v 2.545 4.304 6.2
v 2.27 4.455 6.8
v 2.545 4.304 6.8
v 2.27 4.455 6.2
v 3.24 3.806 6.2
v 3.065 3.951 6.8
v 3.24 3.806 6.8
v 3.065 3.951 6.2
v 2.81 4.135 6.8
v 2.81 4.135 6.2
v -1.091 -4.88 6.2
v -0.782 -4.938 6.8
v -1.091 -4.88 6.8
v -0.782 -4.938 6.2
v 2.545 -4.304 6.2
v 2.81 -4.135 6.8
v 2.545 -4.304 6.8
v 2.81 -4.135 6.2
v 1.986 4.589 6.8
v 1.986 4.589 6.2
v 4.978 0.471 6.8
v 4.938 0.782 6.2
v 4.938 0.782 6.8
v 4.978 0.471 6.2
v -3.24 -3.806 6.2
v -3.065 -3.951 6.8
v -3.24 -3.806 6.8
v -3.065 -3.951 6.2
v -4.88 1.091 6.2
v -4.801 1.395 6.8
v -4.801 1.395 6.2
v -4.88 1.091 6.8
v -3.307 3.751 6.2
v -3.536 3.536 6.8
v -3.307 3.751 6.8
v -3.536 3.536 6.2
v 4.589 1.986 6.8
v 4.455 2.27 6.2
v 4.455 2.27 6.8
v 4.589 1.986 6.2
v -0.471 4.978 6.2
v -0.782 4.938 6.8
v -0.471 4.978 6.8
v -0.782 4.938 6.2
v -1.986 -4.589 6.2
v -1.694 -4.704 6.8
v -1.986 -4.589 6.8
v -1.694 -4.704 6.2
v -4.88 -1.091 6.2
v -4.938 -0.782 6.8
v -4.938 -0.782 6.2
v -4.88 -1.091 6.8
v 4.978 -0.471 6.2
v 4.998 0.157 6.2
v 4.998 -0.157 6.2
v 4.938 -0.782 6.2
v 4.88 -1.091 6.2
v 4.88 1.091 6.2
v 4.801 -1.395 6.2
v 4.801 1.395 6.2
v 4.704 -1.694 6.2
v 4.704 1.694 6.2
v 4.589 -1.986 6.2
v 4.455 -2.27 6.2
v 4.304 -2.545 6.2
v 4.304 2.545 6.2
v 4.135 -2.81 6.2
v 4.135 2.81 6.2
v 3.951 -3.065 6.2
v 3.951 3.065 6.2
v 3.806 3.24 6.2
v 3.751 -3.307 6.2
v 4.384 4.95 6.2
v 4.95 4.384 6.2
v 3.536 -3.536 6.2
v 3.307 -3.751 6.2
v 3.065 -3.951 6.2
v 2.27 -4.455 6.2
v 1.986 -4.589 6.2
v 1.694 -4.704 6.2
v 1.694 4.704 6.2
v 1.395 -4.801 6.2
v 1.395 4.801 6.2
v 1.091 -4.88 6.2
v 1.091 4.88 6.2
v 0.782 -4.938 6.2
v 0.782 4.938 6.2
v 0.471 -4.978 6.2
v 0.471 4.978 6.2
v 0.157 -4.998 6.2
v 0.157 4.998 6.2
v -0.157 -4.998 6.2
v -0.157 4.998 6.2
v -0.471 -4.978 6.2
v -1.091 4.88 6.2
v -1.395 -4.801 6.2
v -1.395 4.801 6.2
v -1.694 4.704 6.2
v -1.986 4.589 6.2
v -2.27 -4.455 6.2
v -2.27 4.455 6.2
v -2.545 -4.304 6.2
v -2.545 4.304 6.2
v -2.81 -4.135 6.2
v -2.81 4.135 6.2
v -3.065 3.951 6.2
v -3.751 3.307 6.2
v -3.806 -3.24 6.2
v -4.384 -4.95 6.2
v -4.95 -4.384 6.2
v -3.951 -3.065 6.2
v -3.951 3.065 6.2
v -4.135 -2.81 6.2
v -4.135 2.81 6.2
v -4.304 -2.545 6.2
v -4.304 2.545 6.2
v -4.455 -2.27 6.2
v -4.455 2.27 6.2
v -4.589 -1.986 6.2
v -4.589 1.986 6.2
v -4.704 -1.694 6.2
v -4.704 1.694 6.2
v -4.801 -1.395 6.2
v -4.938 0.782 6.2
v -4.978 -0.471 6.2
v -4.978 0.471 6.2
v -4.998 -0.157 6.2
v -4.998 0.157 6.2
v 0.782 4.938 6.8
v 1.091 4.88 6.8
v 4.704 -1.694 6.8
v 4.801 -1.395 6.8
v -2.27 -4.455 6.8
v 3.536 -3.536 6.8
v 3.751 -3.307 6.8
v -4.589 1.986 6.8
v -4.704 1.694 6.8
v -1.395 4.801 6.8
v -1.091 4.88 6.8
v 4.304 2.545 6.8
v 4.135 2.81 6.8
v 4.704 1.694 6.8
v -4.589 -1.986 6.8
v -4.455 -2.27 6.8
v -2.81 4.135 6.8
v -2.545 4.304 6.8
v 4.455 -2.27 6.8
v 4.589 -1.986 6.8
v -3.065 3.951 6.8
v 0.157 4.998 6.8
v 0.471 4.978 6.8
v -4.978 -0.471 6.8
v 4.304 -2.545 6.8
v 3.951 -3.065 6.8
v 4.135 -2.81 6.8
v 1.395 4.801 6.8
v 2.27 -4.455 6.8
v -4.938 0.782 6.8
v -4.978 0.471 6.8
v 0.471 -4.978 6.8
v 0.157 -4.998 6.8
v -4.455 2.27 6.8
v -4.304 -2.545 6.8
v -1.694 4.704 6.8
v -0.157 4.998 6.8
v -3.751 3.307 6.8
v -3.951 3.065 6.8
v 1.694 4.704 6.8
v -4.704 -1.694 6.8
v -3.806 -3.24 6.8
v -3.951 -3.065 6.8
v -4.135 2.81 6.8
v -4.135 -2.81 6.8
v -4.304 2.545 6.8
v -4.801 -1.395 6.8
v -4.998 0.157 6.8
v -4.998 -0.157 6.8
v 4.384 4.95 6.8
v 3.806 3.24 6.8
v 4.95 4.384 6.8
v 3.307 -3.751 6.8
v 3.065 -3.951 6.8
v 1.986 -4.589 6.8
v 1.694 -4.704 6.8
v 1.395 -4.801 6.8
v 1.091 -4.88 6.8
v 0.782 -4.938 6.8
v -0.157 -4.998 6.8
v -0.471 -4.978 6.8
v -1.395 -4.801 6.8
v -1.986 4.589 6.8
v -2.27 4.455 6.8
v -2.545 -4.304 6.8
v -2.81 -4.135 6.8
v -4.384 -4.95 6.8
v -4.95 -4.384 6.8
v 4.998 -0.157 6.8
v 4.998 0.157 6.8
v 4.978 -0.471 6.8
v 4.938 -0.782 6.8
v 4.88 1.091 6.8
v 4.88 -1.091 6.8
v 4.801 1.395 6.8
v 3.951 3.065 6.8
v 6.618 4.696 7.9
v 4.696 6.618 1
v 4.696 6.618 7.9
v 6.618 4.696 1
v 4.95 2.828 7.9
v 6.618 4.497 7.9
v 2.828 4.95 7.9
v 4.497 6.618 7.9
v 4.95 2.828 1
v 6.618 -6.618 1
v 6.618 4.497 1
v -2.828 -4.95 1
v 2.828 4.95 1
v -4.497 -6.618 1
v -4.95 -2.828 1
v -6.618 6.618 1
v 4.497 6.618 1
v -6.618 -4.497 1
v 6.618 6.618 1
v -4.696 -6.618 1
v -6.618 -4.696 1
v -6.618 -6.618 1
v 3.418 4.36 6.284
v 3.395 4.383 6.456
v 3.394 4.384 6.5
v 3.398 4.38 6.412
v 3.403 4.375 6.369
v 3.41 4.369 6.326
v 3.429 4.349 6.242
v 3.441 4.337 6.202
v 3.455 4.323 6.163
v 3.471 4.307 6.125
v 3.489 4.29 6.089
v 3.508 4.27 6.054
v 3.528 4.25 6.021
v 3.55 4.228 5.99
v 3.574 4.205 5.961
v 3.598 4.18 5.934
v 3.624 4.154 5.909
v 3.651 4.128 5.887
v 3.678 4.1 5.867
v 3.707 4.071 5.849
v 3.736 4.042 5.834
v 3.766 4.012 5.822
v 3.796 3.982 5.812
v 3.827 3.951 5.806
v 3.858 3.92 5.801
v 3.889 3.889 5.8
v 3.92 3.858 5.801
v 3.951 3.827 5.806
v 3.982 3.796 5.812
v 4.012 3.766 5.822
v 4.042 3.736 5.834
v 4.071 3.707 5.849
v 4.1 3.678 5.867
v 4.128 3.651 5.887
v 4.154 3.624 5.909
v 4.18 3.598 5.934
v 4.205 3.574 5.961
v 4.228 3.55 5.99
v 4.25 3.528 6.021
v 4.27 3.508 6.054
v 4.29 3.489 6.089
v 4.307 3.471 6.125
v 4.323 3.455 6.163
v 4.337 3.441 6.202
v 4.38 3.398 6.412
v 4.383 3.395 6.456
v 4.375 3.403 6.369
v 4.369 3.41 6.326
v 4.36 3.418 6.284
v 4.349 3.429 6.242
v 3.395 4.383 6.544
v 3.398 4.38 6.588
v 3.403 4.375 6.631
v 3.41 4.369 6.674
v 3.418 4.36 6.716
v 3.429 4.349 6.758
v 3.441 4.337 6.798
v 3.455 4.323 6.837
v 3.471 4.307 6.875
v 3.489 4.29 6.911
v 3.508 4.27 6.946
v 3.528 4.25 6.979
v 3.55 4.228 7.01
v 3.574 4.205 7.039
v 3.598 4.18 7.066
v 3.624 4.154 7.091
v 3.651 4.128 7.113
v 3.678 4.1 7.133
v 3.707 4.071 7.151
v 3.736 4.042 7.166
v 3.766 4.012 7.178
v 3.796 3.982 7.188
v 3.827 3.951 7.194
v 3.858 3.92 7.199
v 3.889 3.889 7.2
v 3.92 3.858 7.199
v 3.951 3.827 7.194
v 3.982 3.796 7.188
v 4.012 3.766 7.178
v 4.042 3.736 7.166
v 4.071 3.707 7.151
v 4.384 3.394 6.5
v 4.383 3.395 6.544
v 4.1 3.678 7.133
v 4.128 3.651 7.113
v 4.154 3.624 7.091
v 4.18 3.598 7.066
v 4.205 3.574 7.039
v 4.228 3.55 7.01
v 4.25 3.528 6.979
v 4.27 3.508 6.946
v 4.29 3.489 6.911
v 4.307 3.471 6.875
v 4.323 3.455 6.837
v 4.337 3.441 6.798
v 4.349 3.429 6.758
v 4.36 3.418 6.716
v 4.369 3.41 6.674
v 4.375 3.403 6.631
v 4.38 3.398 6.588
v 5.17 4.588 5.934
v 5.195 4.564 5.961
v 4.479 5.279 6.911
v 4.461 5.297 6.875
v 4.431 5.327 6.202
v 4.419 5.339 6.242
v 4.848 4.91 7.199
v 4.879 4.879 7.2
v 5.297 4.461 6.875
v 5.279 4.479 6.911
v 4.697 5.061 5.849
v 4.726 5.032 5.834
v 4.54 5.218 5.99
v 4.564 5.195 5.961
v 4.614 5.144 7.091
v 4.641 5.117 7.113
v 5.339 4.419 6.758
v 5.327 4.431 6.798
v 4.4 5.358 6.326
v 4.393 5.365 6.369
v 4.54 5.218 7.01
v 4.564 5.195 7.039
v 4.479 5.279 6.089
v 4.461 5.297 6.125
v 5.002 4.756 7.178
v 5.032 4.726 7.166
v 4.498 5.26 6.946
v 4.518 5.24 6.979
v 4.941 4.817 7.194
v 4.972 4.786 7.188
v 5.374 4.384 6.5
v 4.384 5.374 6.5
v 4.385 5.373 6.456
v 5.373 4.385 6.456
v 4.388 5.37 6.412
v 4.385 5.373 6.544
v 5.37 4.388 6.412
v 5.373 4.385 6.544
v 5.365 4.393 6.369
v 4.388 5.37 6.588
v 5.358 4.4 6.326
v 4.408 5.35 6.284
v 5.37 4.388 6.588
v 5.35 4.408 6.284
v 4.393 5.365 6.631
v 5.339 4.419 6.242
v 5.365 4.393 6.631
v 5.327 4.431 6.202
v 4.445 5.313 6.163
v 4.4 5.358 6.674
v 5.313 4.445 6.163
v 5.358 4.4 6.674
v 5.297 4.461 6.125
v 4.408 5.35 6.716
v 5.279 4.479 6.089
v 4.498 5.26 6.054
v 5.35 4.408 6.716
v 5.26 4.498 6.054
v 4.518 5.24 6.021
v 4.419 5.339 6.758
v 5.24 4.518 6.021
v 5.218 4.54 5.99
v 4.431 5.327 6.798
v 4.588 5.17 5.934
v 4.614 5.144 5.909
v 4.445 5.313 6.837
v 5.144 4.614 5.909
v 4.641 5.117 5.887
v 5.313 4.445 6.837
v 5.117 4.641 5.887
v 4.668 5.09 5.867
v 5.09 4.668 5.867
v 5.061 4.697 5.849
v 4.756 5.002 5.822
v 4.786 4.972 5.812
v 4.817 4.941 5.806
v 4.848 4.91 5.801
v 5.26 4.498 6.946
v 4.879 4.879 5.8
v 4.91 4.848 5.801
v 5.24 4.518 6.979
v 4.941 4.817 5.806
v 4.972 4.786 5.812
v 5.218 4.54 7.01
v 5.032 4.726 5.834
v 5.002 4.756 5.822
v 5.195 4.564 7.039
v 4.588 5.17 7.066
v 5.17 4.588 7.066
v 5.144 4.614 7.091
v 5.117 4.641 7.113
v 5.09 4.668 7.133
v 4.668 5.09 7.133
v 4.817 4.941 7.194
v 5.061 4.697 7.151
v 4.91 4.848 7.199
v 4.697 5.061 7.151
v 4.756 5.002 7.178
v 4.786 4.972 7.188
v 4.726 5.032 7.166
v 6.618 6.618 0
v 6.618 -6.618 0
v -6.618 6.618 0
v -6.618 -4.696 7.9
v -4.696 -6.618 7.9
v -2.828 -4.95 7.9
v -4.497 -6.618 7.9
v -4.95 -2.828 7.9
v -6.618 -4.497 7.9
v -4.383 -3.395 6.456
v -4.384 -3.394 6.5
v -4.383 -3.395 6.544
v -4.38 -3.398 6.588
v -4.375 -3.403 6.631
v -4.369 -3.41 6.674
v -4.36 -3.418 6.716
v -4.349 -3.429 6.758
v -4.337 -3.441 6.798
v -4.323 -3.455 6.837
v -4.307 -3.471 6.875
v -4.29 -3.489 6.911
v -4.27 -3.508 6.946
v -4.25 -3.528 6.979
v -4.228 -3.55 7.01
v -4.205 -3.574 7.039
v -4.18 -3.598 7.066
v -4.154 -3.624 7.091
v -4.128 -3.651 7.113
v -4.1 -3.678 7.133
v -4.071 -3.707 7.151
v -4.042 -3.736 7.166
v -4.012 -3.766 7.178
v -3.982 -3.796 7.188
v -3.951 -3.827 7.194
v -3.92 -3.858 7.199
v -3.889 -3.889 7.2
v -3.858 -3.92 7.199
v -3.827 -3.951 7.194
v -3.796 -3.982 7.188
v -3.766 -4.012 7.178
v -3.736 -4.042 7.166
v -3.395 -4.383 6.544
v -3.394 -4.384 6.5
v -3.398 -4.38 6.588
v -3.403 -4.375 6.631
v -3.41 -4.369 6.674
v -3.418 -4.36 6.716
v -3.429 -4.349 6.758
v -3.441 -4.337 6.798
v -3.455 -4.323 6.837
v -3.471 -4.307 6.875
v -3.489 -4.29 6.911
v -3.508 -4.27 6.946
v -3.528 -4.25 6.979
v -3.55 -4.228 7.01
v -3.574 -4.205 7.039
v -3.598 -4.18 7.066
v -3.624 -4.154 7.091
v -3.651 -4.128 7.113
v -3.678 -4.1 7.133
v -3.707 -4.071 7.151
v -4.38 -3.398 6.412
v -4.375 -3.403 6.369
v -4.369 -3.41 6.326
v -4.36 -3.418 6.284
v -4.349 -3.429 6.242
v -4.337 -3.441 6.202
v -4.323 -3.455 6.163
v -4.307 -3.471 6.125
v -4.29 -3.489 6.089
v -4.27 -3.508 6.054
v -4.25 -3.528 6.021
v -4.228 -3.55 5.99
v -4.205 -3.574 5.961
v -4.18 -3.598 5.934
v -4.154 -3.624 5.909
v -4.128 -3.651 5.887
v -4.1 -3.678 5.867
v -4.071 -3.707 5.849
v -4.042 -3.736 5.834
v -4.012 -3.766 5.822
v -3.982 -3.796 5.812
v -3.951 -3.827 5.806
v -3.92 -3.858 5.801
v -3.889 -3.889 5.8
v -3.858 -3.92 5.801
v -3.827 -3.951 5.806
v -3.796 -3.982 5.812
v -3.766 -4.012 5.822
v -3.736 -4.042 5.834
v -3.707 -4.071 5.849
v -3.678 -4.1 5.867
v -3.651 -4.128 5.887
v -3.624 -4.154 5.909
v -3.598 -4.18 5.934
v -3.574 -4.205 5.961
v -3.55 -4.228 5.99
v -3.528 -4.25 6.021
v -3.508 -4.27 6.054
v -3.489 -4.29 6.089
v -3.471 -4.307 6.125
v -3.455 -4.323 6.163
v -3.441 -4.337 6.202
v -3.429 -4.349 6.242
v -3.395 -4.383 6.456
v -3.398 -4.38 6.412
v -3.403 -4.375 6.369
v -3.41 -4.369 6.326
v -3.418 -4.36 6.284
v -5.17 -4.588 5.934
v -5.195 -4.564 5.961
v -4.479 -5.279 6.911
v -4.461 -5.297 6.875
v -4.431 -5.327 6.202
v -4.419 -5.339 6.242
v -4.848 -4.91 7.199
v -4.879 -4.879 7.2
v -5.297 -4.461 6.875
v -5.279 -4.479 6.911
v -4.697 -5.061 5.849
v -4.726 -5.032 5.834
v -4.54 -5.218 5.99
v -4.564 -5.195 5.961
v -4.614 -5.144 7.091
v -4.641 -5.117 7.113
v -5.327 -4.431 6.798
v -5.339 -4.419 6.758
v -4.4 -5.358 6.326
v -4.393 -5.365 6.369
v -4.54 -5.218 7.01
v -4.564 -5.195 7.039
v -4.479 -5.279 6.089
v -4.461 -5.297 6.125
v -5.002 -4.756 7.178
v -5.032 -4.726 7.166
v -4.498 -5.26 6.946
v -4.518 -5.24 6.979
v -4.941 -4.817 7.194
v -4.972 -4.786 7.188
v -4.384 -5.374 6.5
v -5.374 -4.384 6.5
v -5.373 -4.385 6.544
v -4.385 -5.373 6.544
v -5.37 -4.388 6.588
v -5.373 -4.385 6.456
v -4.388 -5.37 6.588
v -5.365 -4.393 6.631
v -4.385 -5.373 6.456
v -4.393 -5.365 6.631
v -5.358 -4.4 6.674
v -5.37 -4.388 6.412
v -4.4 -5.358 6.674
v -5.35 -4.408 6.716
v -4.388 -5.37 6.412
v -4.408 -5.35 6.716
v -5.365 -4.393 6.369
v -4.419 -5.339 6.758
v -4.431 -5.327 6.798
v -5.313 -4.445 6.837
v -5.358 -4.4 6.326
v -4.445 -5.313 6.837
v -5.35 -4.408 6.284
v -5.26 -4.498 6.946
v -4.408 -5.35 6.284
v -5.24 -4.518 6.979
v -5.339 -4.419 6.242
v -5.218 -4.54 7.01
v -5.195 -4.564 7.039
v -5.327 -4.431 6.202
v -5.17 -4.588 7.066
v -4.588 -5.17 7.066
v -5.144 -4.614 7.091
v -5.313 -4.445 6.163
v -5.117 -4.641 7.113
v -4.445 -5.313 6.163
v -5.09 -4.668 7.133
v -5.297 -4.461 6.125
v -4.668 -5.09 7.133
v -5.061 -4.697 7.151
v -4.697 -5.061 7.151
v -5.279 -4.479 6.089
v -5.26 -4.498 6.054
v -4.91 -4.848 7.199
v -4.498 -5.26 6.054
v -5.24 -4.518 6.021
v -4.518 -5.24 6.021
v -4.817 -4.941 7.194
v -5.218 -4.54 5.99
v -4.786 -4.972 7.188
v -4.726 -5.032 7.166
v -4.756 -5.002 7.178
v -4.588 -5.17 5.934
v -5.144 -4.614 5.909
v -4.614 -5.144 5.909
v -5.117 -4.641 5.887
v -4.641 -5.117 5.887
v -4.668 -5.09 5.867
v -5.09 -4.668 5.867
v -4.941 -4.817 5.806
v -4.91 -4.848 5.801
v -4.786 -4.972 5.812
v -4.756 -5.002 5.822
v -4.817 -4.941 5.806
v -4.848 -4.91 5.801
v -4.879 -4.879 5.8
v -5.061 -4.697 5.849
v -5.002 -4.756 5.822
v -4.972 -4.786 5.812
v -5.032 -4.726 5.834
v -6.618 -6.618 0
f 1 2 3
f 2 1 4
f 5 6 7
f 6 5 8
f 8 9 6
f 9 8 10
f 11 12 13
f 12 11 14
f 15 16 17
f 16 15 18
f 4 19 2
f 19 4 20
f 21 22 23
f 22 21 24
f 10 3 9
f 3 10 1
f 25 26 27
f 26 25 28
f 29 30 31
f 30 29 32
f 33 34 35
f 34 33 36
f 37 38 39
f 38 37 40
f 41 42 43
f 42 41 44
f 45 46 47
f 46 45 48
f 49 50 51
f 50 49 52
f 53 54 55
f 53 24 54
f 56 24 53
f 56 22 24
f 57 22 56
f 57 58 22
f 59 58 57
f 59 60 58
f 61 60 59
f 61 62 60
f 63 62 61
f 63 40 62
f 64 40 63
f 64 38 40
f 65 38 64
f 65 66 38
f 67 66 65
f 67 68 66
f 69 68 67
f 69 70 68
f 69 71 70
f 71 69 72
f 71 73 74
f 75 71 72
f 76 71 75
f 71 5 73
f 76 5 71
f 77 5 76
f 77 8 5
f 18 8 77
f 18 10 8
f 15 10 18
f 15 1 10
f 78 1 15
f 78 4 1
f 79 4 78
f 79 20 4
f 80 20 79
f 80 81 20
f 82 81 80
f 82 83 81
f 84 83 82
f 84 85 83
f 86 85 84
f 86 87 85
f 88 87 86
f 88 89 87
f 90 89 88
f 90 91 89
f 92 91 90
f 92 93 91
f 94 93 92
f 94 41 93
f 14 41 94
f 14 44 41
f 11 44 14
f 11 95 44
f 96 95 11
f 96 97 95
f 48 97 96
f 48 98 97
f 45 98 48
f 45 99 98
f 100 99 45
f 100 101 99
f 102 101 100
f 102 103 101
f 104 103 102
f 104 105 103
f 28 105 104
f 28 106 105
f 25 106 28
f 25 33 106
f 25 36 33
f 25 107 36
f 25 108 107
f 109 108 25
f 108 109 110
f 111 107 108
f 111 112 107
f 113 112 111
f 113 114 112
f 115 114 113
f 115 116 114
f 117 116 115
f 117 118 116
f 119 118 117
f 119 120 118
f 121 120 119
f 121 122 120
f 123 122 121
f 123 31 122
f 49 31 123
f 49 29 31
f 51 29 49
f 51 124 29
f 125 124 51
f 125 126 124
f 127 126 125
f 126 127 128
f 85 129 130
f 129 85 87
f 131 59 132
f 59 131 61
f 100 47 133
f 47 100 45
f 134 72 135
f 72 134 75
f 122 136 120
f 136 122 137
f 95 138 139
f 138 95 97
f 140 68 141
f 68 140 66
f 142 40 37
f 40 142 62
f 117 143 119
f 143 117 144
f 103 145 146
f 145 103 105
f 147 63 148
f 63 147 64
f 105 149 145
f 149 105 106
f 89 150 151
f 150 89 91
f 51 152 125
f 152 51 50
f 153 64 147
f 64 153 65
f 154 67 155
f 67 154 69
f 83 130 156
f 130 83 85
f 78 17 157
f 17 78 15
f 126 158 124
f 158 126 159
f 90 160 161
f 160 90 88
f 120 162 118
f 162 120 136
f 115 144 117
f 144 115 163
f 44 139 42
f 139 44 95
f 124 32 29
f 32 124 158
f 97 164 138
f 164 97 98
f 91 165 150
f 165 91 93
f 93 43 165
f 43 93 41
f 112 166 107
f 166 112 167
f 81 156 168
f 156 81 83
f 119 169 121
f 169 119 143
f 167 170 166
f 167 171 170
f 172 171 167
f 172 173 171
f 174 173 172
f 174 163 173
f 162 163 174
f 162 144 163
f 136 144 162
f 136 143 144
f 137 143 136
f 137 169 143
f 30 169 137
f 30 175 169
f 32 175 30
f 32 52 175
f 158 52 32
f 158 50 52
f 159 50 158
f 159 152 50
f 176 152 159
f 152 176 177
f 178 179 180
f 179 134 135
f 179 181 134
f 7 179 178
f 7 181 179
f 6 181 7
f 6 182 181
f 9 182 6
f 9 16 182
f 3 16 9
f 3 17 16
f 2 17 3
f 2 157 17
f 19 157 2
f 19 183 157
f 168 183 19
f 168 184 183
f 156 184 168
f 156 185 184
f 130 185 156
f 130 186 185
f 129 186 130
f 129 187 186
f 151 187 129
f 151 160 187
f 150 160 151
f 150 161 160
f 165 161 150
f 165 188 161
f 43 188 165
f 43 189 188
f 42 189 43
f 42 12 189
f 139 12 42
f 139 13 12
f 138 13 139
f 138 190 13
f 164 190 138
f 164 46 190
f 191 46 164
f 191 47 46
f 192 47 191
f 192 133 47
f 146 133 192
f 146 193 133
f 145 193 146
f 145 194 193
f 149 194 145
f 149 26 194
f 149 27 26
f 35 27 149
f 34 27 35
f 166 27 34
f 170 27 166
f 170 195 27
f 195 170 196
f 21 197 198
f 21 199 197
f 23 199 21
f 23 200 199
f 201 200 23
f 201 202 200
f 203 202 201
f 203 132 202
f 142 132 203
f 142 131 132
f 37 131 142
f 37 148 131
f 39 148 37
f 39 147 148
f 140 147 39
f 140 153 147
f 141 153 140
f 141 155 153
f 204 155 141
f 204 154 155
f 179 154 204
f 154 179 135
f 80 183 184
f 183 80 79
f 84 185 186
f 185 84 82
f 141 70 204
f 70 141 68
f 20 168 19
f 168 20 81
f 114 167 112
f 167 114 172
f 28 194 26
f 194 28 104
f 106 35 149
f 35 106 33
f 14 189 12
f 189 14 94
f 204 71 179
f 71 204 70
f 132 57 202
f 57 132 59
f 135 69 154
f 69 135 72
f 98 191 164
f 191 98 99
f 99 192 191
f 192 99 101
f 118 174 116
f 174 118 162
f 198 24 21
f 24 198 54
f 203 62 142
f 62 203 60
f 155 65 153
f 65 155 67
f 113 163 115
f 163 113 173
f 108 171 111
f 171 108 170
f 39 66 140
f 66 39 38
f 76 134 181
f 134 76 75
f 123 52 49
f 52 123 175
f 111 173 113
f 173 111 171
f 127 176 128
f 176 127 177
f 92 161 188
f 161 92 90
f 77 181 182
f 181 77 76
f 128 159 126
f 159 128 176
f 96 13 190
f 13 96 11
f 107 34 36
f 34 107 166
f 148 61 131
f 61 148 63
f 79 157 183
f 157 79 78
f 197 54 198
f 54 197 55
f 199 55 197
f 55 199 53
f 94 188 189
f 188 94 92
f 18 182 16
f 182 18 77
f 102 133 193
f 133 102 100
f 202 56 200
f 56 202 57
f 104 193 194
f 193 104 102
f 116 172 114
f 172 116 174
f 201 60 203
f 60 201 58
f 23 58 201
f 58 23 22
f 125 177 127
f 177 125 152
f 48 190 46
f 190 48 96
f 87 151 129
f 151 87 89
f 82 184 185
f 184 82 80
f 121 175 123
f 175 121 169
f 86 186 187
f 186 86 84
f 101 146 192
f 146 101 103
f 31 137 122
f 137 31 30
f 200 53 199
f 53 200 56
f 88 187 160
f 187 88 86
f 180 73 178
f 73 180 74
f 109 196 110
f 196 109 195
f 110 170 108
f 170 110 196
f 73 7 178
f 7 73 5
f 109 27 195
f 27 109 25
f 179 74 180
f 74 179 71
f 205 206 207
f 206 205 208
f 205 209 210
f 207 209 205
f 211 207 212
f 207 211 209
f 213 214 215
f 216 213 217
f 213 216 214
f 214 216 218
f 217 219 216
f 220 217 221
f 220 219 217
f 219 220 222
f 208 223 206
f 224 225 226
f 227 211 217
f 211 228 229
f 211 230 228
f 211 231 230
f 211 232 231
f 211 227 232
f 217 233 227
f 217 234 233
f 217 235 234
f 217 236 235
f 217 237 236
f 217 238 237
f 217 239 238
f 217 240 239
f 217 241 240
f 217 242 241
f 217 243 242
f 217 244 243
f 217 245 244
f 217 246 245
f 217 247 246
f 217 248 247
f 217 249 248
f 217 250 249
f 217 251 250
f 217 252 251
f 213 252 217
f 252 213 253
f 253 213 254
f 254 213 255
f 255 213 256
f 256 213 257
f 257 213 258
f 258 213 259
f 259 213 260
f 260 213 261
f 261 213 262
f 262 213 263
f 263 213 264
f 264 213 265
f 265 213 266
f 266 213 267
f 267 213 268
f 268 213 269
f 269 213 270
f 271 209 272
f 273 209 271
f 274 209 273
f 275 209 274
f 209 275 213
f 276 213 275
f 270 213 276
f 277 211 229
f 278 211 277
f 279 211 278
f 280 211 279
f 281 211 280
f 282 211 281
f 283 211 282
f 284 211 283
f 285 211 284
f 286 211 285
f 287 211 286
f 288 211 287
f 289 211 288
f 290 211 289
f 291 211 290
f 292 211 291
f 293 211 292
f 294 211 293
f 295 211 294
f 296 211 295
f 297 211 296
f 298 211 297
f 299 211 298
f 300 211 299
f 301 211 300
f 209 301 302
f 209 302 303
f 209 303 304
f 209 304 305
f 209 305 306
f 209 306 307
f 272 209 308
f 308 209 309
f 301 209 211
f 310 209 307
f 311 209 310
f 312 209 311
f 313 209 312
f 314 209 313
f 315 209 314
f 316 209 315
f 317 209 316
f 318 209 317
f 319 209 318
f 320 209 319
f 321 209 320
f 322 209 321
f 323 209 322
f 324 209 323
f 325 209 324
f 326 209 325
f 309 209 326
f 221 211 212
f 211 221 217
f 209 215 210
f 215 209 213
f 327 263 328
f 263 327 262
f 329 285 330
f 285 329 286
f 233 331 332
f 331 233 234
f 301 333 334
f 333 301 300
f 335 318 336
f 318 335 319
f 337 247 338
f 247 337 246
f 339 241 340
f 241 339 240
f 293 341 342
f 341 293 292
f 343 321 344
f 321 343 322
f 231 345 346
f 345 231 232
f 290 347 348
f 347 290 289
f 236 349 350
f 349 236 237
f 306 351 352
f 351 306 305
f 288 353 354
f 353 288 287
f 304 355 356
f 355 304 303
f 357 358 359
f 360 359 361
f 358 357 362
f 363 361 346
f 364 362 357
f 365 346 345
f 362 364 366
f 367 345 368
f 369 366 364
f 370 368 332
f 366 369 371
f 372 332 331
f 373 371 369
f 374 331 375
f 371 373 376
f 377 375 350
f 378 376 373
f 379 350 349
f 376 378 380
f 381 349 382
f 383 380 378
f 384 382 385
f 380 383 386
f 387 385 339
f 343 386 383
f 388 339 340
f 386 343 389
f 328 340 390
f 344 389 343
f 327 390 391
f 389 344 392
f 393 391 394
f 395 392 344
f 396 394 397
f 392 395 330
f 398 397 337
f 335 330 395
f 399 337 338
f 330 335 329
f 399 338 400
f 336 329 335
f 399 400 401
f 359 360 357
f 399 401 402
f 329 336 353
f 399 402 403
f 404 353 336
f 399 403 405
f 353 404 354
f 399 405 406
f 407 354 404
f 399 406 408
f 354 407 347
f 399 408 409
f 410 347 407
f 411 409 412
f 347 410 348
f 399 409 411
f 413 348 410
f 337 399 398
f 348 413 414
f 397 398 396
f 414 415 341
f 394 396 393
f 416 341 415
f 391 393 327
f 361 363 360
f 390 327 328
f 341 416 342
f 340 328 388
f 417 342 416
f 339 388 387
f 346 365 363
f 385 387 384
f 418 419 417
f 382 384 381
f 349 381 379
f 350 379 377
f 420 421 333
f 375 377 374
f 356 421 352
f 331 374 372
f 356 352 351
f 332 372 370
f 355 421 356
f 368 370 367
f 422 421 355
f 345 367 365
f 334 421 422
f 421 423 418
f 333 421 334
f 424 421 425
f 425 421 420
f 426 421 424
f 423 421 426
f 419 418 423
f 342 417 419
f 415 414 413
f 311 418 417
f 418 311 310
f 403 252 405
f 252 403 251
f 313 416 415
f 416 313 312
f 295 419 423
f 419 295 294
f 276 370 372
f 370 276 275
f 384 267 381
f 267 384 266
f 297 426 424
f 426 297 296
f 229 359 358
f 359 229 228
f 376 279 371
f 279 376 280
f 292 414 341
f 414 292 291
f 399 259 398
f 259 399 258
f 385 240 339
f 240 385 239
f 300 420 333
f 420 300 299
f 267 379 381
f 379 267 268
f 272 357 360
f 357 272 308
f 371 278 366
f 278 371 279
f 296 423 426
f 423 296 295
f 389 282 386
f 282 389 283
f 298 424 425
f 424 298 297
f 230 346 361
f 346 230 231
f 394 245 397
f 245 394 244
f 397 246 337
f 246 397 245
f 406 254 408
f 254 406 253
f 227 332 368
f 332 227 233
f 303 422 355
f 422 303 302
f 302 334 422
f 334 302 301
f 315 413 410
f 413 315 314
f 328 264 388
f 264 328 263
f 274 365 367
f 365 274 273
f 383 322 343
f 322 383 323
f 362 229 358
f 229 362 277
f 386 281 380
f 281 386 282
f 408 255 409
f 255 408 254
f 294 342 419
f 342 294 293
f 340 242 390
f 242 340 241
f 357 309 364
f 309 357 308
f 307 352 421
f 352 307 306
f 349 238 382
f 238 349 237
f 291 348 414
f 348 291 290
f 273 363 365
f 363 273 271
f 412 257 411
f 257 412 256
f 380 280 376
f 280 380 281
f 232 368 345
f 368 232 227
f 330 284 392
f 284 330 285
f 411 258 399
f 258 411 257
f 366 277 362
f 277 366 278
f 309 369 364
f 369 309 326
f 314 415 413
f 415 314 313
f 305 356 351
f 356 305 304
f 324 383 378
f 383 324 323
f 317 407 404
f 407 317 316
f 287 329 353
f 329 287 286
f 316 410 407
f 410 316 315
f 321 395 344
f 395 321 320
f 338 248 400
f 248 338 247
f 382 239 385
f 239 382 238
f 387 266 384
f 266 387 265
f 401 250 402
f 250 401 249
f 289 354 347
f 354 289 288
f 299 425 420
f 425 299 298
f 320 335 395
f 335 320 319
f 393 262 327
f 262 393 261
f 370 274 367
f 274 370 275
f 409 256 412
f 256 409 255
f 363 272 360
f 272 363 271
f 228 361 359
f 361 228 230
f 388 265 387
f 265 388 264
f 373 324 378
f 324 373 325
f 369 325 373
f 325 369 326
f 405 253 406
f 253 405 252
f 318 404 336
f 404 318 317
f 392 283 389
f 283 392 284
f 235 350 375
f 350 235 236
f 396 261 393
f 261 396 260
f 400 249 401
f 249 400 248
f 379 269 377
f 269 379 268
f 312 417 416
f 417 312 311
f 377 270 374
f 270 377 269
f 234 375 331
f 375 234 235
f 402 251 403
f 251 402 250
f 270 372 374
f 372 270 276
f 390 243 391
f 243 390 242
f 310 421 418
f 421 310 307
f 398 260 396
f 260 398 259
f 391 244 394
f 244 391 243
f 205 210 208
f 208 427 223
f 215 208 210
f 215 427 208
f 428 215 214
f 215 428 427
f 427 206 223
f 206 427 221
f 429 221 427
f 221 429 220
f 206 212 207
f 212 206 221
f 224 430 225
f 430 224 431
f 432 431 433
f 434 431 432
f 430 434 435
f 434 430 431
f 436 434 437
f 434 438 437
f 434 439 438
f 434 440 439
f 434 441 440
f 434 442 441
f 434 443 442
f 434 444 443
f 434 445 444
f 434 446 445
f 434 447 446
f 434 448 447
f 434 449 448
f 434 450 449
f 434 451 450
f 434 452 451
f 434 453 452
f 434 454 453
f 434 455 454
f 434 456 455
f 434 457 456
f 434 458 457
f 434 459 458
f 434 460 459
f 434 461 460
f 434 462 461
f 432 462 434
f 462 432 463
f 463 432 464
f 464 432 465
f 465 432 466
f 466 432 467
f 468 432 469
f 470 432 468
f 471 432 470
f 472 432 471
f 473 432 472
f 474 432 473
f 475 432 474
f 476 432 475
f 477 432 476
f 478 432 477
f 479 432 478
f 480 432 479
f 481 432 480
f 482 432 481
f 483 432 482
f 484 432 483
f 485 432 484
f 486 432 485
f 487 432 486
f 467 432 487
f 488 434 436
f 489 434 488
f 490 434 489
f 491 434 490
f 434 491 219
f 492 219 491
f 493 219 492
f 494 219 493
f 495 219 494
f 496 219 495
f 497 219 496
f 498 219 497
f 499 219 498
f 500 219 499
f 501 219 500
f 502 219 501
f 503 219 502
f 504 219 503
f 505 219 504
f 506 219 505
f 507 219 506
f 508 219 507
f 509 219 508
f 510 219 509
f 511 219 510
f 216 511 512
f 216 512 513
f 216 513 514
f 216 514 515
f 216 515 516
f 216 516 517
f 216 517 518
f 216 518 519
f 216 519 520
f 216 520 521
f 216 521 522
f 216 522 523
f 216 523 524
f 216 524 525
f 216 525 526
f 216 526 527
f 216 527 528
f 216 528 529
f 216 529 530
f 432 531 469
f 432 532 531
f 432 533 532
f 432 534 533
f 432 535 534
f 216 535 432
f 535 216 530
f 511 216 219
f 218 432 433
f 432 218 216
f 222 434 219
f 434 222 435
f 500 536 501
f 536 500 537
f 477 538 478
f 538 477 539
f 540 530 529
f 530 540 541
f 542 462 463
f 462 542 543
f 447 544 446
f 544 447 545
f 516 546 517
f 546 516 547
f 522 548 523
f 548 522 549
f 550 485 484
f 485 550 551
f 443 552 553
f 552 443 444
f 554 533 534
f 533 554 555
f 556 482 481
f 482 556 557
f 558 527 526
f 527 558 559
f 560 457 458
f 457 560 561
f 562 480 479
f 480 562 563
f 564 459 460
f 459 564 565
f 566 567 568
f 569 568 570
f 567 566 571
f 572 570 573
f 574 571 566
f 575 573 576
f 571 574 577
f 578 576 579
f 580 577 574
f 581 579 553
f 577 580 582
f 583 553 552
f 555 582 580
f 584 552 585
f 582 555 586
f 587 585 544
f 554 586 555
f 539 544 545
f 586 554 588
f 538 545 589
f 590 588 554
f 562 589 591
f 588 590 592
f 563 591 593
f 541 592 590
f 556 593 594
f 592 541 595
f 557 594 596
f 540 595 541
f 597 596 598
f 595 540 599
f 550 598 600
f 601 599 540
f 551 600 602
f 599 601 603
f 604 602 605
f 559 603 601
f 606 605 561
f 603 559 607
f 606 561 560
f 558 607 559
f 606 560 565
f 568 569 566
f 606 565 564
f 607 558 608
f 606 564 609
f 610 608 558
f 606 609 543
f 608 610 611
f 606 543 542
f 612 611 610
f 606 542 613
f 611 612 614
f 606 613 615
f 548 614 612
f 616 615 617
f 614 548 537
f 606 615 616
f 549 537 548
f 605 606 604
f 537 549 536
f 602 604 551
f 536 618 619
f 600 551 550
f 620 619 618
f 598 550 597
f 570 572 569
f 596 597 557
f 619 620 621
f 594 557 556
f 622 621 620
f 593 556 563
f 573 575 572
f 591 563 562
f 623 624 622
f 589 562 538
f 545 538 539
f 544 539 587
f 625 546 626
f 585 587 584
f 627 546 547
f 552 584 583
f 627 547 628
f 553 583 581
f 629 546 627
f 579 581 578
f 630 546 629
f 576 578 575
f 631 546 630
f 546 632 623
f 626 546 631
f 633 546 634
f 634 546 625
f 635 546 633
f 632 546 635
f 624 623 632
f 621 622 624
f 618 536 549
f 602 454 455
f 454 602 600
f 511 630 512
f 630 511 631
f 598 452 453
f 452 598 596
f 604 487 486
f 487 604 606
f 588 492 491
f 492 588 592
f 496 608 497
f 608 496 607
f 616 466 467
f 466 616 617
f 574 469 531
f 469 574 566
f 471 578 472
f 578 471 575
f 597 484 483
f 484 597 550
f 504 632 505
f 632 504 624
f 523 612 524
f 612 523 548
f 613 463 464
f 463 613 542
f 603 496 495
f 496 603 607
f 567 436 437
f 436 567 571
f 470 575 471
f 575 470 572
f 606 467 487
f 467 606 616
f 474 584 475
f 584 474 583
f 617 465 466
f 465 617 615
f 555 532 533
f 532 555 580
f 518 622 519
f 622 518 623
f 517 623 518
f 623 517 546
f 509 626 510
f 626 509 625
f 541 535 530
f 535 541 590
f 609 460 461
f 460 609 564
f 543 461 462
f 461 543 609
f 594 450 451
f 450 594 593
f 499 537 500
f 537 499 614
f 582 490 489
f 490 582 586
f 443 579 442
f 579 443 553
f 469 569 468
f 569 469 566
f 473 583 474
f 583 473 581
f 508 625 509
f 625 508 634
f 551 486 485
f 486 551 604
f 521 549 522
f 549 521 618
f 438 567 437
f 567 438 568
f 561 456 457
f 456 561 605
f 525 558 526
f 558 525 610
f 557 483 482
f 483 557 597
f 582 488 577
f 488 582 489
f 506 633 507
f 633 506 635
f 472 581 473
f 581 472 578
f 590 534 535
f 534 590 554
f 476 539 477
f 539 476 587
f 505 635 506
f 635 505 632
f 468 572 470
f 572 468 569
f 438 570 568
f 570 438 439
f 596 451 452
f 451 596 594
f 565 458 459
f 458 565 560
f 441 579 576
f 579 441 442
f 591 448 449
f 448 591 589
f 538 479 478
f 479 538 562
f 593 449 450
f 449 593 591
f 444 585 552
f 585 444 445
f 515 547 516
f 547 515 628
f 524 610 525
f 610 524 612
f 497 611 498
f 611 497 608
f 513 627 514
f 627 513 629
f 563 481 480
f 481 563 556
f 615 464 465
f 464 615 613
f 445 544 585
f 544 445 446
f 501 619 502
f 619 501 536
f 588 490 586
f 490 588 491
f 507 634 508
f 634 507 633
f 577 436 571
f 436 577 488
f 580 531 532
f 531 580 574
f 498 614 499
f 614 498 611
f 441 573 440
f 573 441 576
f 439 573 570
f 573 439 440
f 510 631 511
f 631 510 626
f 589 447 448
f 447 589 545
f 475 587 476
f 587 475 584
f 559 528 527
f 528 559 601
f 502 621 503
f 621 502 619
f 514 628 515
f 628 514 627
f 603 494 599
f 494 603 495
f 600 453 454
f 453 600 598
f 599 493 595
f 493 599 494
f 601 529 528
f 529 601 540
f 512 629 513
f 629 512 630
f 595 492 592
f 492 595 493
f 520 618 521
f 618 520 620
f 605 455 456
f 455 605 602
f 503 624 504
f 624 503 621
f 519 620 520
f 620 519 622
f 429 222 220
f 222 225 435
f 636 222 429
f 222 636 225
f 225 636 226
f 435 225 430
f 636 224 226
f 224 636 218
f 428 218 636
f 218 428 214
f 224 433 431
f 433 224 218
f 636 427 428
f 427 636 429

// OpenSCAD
inf = 100;

dot_radius = 5;
dot_thiccness = .6;

pin_width = .8;
pin_extrusion = 1.6;

base_height = 1;
base_pad = .5;
dot_to_arm_pad = .5;
hole_radius_pad = .3;
hole_depth_pad = .3;

arm_width = 2.5;
arm_side_pad = 1;
arm_top_pad = 1;

rotate([0, 0, 45]) translate([0, 0, base_height+dot_radius+base_pad]) rotate([360*$t, 0, 0])
//translate([20, 0, .5/2])
union() {
    translate([0, 0, -(dot_thiccness)/2]) cylinder(dot_thiccness, r=dot_radius, $fn=100);
    cube([(dot_radius*2)+(pin_extrusion*2), pin_width, dot_thiccness], true);
}

base_width = (dot_radius*2)+(dot_to_arm_pad*2)+(sqrt(arm_width*2));

translate([-base_width/2, -base_width/2, 0])
    cube([
        base_width,
        base_width,
        base_height,
    ]);

for (i = [0, 180]) {
    intersection() {
        rotate([0, 0, 45-i]) union() {
            difference() {
                translate([dot_radius+dot_to_arm_pad, -arm_width/2 - dot_to_arm_pad/2, base_height])
                    cube([arm_width, arm_width+dot_to_arm_pad, dot_radius+base_pad+(pin_width/2)+arm_top_pad]);
                translate([dot_radius+pin_extrusion+hole_depth_pad, 0, base_height+dot_radius+base_pad])
                    rotate([0, -90, 0])
                    cylinder(inf, r=(pin_width/2)+hole_radius_pad, $fn=100);
            }
        }

        translate([-base_width/2, -base_width/2, 0]) cube([base_width, base_width, 100]);
    }
}
